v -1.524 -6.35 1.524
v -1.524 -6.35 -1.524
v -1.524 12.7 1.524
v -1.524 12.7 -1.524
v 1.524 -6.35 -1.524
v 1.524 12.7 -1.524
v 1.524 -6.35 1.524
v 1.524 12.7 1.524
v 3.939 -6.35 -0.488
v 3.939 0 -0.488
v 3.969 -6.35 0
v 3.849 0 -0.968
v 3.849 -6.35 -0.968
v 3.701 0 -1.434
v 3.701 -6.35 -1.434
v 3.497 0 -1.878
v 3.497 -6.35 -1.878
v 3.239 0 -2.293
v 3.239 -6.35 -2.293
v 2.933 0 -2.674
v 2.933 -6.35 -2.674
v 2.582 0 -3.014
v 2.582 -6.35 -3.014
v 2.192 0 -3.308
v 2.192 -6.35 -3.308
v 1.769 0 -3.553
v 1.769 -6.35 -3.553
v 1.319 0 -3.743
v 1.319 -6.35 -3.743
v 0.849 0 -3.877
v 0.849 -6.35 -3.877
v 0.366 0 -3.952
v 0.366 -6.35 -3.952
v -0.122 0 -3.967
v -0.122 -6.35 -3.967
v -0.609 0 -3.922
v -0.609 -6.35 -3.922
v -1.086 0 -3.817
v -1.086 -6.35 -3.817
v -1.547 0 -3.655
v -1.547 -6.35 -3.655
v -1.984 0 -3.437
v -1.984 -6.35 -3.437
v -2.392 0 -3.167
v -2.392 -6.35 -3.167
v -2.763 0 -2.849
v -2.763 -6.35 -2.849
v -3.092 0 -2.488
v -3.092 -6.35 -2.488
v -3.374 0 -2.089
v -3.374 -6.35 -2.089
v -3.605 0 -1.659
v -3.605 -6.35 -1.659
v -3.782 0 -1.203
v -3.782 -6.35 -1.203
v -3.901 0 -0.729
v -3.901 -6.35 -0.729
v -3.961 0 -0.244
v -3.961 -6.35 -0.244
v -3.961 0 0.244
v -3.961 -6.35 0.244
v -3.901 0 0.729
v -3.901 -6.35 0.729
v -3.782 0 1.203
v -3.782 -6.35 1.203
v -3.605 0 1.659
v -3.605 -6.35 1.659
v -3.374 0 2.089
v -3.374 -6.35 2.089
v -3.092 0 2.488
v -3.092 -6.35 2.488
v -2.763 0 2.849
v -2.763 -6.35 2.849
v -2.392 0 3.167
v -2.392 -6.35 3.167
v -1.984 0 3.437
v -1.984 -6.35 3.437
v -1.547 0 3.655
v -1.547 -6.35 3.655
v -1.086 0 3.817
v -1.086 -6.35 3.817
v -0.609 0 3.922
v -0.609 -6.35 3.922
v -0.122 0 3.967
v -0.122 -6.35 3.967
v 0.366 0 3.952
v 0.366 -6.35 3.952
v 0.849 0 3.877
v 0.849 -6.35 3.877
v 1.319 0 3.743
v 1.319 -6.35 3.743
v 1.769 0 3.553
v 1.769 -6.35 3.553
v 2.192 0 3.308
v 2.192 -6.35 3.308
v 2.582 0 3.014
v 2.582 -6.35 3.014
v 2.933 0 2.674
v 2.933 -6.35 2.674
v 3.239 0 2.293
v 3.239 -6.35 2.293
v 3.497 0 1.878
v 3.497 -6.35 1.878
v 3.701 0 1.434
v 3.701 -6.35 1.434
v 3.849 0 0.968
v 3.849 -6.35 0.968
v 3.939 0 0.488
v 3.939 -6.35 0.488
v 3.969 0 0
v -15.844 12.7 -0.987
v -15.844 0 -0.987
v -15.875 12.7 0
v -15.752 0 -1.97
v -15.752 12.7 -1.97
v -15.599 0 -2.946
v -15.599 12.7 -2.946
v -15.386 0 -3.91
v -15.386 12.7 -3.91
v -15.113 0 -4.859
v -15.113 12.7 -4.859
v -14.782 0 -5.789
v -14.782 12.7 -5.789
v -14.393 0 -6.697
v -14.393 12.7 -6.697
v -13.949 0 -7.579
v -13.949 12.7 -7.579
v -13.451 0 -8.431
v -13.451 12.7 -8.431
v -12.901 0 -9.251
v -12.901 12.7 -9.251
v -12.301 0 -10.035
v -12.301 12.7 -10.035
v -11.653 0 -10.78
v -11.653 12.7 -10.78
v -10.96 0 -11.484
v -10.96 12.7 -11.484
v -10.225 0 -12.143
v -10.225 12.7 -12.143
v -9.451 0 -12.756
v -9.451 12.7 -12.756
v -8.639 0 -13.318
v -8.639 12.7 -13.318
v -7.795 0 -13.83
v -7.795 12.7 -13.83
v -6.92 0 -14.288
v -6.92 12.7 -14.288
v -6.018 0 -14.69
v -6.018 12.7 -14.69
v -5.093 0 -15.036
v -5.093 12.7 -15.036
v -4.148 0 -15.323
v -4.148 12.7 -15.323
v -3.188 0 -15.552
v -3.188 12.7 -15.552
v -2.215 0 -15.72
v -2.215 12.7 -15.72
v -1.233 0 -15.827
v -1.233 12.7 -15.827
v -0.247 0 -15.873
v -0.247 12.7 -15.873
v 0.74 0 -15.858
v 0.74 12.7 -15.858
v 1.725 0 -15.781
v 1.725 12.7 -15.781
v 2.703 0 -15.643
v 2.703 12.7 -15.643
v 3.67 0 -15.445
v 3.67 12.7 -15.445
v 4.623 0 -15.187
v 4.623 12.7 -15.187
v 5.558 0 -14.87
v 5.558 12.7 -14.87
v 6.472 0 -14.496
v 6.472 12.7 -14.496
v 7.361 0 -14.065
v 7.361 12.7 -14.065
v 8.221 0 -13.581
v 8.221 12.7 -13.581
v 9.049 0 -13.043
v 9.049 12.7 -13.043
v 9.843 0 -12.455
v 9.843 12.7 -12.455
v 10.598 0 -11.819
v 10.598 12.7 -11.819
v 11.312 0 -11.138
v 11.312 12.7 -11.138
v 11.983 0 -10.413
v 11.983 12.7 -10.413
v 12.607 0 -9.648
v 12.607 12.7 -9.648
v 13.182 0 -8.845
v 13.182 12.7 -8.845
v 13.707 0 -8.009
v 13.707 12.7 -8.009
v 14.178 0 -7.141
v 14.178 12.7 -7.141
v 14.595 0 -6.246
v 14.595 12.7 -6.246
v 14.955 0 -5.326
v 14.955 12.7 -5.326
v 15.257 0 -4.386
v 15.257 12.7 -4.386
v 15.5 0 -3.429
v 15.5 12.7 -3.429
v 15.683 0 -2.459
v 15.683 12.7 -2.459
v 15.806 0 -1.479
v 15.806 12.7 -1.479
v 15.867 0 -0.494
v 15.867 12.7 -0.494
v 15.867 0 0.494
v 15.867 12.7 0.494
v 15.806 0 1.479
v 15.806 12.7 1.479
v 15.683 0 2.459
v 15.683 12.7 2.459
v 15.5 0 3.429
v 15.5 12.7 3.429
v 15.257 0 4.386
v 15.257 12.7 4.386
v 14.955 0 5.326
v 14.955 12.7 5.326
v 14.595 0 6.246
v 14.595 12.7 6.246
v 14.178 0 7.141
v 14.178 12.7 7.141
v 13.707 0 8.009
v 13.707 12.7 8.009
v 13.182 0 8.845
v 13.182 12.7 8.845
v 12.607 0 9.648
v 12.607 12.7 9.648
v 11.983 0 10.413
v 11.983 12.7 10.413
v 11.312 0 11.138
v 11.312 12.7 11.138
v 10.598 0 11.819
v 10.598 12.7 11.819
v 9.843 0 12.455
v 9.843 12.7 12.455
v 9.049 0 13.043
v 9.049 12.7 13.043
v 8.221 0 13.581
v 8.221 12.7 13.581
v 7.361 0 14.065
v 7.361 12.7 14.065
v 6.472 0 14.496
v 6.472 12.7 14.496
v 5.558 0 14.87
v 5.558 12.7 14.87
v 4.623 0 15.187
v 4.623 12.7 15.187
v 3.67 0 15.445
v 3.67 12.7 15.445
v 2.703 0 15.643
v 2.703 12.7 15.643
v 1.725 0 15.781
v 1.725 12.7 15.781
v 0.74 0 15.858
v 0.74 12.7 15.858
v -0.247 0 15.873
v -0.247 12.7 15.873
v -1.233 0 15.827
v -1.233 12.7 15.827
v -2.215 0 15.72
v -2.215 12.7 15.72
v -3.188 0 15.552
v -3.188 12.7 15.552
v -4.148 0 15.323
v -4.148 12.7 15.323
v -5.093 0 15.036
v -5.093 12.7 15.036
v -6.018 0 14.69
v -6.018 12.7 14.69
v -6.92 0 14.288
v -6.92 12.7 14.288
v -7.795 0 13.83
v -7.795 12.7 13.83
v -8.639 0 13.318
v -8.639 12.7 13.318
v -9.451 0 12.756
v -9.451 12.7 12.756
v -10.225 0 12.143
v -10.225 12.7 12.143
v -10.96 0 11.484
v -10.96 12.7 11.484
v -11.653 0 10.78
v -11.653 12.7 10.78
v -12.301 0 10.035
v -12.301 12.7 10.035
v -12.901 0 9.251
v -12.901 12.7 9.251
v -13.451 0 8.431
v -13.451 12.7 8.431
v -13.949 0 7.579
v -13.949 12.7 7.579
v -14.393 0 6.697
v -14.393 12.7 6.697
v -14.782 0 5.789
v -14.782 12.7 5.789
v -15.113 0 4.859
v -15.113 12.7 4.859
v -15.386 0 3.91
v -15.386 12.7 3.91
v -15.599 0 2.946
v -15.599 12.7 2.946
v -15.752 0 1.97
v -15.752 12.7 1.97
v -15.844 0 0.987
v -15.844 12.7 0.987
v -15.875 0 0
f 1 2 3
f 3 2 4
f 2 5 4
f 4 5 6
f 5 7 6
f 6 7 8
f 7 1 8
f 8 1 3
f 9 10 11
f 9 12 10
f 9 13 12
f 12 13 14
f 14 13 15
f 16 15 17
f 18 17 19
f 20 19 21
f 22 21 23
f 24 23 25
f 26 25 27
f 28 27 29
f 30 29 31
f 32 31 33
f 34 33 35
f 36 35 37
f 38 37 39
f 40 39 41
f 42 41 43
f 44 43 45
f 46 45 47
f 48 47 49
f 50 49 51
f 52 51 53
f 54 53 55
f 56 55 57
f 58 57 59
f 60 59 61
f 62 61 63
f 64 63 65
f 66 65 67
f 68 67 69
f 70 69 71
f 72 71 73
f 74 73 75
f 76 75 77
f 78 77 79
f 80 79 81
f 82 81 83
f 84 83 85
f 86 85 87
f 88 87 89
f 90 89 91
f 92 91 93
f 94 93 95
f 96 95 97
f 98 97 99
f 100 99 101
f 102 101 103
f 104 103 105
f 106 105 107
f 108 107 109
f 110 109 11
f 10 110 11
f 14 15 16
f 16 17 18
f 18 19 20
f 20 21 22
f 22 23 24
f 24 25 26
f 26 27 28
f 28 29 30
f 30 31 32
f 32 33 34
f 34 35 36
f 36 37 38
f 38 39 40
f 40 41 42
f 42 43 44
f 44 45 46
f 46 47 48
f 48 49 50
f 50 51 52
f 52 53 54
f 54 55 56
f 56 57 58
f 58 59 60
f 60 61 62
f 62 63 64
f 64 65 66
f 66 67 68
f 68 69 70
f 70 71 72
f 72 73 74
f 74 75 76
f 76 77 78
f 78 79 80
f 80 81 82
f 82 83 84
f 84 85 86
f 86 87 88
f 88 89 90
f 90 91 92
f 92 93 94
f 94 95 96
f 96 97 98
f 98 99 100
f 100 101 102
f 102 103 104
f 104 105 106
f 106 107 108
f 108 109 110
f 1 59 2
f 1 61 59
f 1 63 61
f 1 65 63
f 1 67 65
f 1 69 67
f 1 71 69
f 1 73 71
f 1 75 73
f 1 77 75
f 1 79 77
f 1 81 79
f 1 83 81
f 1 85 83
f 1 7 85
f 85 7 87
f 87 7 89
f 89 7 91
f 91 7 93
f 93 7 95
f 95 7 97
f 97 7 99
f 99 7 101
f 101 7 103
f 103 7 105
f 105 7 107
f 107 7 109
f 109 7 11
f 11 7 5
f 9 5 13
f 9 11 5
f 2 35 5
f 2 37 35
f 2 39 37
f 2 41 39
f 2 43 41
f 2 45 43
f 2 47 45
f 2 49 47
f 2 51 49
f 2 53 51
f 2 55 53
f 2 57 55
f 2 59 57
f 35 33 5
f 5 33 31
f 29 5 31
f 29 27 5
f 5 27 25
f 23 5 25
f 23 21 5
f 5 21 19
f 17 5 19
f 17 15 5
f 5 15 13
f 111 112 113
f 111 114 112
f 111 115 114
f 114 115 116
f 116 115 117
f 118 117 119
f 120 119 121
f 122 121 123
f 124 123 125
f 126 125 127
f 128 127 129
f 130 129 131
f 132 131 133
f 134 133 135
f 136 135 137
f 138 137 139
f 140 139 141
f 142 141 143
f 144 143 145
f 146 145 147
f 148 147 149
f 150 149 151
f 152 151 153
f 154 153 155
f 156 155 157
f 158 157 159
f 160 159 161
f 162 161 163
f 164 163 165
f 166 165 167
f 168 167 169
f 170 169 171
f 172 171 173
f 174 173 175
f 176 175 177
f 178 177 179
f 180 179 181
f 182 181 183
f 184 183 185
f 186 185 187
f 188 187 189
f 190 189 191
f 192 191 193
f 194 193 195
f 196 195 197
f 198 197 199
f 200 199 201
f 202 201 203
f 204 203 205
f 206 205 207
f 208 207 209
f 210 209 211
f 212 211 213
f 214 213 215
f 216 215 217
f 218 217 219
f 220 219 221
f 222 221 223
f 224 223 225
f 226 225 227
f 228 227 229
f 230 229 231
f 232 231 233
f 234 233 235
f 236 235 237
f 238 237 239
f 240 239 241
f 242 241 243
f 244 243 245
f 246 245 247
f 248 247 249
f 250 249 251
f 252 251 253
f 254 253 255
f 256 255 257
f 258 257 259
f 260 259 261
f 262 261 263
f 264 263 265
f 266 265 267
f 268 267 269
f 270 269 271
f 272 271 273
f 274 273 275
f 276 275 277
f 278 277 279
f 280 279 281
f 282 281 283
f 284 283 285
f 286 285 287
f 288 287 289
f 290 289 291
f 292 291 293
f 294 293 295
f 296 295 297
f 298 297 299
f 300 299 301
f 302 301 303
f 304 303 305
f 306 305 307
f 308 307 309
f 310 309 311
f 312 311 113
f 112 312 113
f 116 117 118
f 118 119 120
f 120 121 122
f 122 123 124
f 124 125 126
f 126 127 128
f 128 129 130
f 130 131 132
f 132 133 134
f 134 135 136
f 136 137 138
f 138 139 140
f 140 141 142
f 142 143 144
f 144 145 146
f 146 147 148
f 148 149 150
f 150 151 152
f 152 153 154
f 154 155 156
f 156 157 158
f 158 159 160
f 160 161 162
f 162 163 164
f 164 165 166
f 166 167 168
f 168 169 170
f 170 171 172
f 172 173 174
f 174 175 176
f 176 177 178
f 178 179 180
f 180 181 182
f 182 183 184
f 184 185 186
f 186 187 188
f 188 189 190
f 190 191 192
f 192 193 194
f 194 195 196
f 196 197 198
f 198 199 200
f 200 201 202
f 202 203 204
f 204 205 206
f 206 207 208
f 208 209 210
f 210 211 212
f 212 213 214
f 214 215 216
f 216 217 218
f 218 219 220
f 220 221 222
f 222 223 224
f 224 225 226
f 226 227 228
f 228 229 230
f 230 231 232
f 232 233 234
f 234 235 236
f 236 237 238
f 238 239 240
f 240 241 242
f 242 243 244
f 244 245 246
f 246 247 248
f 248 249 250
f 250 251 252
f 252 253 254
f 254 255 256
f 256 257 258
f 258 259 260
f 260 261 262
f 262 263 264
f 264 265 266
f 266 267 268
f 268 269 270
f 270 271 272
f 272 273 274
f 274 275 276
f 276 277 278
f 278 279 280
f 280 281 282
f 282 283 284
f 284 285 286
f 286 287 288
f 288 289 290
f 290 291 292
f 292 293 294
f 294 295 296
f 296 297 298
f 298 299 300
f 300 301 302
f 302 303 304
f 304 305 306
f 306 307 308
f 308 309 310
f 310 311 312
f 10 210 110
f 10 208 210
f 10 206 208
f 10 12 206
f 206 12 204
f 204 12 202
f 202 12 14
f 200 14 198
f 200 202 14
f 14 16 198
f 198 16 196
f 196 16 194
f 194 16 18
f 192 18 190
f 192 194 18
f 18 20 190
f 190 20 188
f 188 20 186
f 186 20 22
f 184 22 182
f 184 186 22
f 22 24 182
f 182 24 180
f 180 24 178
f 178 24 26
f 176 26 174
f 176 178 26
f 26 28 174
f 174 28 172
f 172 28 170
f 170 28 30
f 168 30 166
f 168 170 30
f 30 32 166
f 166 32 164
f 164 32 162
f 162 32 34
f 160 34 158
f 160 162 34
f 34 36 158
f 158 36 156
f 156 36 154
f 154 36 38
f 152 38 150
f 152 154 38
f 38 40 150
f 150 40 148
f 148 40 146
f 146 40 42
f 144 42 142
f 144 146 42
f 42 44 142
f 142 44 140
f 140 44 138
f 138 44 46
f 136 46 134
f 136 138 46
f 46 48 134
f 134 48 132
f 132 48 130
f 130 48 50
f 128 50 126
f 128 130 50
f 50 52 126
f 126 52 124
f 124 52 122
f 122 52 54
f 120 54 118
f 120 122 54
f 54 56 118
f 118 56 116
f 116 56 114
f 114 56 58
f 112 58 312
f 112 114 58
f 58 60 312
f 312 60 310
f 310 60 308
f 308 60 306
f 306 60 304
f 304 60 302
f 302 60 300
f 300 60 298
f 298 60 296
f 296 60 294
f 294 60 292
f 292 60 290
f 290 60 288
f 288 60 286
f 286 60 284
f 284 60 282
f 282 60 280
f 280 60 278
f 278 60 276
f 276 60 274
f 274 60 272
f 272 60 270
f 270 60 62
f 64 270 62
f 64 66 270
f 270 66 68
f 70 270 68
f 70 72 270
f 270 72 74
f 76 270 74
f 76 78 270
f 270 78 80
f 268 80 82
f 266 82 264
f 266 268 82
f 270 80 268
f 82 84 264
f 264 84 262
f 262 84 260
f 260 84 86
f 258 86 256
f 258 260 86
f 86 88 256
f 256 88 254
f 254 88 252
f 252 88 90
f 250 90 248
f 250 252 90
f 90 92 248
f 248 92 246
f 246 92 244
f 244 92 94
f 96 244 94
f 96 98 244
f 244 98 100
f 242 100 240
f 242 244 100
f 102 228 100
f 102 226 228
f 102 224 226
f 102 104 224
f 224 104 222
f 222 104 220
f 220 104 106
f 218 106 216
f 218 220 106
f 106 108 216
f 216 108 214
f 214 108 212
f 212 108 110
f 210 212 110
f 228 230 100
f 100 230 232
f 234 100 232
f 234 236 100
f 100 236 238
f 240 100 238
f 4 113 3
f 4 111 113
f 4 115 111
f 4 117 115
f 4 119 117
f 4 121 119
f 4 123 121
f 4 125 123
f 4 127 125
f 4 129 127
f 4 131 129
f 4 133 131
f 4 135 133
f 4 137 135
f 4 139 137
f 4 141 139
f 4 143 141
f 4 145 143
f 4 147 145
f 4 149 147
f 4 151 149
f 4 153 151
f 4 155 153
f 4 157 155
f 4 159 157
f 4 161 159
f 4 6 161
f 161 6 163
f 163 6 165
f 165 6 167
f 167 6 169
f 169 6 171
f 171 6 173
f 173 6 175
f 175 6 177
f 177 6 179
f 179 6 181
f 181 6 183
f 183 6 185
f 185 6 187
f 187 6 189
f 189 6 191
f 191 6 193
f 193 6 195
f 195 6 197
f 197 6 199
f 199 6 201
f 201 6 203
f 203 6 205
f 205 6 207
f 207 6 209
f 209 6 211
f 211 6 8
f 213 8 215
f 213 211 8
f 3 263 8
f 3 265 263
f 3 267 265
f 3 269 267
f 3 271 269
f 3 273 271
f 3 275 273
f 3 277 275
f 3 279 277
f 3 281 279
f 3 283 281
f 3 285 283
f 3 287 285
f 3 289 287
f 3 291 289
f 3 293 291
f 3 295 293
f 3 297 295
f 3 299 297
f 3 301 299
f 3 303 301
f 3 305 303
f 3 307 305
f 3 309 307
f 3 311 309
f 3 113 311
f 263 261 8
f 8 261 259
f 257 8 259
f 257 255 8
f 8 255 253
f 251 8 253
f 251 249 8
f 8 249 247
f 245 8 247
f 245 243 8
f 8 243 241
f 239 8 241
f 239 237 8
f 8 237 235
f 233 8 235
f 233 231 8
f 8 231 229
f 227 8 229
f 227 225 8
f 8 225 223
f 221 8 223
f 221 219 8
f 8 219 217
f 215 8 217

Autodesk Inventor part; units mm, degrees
ref_plane "YZ Plane" through (0, 0, 0) normal (1, 0, 0) x (0, 1, 0)
ref_plane "XZ Plane" through (0, 0, 0) normal (0, 1, 0) x (-1, 0, 0)
ref_plane "XY Plane" through (0, 0, 0) normal (0, 0, 1) x (1, 0, 0)
sketch "Sketch1" plane through (0, 0, 0) normal (0, 1, 0) x (-1, 0, 0)
  circle A0 centre (0, 0) radius 15.875
  dimension "d0" = 31.75
extrude "Extrusion1" add sketch "Sketch1" along normal blind 12.7
sketch "Sketch4" plane through (0, 0, 0) normal (0, -1, 0) x (1, 0, 0)
  circle A0 centre (0, 0) radius 3.9688
  dimension "d18" = 7.9375
extrude "Extrusion4" add sketch "Sketch4" along normal blind 6.35
sketch "Sketch5" plane through (0, -6.35, 0) normal (0, -1, 0) x (1, 0, 0)
  line L0 (1.524, 1.524) -> (-1.524, 1.524)
  line L1 (-1.524, 1.524) -> (-1.524, -1.524)
  line L2 (-1.524, -1.524) -> (1.524, -1.524)
  line L3 (1.524, -1.524) -> (1.524, 1.524)
  line L4 (1.524, 1.524) -> (-1.524, -1.524) construction
  line L5 (-1.524, 1.524) -> (1.524, -1.524) construction
  point P0 (0, 0)
  dimension "d21" = 3.048
extrude "Extrusion5" cut sketch "Sketch5" against normal blind 19.05
properties part number "knob"
